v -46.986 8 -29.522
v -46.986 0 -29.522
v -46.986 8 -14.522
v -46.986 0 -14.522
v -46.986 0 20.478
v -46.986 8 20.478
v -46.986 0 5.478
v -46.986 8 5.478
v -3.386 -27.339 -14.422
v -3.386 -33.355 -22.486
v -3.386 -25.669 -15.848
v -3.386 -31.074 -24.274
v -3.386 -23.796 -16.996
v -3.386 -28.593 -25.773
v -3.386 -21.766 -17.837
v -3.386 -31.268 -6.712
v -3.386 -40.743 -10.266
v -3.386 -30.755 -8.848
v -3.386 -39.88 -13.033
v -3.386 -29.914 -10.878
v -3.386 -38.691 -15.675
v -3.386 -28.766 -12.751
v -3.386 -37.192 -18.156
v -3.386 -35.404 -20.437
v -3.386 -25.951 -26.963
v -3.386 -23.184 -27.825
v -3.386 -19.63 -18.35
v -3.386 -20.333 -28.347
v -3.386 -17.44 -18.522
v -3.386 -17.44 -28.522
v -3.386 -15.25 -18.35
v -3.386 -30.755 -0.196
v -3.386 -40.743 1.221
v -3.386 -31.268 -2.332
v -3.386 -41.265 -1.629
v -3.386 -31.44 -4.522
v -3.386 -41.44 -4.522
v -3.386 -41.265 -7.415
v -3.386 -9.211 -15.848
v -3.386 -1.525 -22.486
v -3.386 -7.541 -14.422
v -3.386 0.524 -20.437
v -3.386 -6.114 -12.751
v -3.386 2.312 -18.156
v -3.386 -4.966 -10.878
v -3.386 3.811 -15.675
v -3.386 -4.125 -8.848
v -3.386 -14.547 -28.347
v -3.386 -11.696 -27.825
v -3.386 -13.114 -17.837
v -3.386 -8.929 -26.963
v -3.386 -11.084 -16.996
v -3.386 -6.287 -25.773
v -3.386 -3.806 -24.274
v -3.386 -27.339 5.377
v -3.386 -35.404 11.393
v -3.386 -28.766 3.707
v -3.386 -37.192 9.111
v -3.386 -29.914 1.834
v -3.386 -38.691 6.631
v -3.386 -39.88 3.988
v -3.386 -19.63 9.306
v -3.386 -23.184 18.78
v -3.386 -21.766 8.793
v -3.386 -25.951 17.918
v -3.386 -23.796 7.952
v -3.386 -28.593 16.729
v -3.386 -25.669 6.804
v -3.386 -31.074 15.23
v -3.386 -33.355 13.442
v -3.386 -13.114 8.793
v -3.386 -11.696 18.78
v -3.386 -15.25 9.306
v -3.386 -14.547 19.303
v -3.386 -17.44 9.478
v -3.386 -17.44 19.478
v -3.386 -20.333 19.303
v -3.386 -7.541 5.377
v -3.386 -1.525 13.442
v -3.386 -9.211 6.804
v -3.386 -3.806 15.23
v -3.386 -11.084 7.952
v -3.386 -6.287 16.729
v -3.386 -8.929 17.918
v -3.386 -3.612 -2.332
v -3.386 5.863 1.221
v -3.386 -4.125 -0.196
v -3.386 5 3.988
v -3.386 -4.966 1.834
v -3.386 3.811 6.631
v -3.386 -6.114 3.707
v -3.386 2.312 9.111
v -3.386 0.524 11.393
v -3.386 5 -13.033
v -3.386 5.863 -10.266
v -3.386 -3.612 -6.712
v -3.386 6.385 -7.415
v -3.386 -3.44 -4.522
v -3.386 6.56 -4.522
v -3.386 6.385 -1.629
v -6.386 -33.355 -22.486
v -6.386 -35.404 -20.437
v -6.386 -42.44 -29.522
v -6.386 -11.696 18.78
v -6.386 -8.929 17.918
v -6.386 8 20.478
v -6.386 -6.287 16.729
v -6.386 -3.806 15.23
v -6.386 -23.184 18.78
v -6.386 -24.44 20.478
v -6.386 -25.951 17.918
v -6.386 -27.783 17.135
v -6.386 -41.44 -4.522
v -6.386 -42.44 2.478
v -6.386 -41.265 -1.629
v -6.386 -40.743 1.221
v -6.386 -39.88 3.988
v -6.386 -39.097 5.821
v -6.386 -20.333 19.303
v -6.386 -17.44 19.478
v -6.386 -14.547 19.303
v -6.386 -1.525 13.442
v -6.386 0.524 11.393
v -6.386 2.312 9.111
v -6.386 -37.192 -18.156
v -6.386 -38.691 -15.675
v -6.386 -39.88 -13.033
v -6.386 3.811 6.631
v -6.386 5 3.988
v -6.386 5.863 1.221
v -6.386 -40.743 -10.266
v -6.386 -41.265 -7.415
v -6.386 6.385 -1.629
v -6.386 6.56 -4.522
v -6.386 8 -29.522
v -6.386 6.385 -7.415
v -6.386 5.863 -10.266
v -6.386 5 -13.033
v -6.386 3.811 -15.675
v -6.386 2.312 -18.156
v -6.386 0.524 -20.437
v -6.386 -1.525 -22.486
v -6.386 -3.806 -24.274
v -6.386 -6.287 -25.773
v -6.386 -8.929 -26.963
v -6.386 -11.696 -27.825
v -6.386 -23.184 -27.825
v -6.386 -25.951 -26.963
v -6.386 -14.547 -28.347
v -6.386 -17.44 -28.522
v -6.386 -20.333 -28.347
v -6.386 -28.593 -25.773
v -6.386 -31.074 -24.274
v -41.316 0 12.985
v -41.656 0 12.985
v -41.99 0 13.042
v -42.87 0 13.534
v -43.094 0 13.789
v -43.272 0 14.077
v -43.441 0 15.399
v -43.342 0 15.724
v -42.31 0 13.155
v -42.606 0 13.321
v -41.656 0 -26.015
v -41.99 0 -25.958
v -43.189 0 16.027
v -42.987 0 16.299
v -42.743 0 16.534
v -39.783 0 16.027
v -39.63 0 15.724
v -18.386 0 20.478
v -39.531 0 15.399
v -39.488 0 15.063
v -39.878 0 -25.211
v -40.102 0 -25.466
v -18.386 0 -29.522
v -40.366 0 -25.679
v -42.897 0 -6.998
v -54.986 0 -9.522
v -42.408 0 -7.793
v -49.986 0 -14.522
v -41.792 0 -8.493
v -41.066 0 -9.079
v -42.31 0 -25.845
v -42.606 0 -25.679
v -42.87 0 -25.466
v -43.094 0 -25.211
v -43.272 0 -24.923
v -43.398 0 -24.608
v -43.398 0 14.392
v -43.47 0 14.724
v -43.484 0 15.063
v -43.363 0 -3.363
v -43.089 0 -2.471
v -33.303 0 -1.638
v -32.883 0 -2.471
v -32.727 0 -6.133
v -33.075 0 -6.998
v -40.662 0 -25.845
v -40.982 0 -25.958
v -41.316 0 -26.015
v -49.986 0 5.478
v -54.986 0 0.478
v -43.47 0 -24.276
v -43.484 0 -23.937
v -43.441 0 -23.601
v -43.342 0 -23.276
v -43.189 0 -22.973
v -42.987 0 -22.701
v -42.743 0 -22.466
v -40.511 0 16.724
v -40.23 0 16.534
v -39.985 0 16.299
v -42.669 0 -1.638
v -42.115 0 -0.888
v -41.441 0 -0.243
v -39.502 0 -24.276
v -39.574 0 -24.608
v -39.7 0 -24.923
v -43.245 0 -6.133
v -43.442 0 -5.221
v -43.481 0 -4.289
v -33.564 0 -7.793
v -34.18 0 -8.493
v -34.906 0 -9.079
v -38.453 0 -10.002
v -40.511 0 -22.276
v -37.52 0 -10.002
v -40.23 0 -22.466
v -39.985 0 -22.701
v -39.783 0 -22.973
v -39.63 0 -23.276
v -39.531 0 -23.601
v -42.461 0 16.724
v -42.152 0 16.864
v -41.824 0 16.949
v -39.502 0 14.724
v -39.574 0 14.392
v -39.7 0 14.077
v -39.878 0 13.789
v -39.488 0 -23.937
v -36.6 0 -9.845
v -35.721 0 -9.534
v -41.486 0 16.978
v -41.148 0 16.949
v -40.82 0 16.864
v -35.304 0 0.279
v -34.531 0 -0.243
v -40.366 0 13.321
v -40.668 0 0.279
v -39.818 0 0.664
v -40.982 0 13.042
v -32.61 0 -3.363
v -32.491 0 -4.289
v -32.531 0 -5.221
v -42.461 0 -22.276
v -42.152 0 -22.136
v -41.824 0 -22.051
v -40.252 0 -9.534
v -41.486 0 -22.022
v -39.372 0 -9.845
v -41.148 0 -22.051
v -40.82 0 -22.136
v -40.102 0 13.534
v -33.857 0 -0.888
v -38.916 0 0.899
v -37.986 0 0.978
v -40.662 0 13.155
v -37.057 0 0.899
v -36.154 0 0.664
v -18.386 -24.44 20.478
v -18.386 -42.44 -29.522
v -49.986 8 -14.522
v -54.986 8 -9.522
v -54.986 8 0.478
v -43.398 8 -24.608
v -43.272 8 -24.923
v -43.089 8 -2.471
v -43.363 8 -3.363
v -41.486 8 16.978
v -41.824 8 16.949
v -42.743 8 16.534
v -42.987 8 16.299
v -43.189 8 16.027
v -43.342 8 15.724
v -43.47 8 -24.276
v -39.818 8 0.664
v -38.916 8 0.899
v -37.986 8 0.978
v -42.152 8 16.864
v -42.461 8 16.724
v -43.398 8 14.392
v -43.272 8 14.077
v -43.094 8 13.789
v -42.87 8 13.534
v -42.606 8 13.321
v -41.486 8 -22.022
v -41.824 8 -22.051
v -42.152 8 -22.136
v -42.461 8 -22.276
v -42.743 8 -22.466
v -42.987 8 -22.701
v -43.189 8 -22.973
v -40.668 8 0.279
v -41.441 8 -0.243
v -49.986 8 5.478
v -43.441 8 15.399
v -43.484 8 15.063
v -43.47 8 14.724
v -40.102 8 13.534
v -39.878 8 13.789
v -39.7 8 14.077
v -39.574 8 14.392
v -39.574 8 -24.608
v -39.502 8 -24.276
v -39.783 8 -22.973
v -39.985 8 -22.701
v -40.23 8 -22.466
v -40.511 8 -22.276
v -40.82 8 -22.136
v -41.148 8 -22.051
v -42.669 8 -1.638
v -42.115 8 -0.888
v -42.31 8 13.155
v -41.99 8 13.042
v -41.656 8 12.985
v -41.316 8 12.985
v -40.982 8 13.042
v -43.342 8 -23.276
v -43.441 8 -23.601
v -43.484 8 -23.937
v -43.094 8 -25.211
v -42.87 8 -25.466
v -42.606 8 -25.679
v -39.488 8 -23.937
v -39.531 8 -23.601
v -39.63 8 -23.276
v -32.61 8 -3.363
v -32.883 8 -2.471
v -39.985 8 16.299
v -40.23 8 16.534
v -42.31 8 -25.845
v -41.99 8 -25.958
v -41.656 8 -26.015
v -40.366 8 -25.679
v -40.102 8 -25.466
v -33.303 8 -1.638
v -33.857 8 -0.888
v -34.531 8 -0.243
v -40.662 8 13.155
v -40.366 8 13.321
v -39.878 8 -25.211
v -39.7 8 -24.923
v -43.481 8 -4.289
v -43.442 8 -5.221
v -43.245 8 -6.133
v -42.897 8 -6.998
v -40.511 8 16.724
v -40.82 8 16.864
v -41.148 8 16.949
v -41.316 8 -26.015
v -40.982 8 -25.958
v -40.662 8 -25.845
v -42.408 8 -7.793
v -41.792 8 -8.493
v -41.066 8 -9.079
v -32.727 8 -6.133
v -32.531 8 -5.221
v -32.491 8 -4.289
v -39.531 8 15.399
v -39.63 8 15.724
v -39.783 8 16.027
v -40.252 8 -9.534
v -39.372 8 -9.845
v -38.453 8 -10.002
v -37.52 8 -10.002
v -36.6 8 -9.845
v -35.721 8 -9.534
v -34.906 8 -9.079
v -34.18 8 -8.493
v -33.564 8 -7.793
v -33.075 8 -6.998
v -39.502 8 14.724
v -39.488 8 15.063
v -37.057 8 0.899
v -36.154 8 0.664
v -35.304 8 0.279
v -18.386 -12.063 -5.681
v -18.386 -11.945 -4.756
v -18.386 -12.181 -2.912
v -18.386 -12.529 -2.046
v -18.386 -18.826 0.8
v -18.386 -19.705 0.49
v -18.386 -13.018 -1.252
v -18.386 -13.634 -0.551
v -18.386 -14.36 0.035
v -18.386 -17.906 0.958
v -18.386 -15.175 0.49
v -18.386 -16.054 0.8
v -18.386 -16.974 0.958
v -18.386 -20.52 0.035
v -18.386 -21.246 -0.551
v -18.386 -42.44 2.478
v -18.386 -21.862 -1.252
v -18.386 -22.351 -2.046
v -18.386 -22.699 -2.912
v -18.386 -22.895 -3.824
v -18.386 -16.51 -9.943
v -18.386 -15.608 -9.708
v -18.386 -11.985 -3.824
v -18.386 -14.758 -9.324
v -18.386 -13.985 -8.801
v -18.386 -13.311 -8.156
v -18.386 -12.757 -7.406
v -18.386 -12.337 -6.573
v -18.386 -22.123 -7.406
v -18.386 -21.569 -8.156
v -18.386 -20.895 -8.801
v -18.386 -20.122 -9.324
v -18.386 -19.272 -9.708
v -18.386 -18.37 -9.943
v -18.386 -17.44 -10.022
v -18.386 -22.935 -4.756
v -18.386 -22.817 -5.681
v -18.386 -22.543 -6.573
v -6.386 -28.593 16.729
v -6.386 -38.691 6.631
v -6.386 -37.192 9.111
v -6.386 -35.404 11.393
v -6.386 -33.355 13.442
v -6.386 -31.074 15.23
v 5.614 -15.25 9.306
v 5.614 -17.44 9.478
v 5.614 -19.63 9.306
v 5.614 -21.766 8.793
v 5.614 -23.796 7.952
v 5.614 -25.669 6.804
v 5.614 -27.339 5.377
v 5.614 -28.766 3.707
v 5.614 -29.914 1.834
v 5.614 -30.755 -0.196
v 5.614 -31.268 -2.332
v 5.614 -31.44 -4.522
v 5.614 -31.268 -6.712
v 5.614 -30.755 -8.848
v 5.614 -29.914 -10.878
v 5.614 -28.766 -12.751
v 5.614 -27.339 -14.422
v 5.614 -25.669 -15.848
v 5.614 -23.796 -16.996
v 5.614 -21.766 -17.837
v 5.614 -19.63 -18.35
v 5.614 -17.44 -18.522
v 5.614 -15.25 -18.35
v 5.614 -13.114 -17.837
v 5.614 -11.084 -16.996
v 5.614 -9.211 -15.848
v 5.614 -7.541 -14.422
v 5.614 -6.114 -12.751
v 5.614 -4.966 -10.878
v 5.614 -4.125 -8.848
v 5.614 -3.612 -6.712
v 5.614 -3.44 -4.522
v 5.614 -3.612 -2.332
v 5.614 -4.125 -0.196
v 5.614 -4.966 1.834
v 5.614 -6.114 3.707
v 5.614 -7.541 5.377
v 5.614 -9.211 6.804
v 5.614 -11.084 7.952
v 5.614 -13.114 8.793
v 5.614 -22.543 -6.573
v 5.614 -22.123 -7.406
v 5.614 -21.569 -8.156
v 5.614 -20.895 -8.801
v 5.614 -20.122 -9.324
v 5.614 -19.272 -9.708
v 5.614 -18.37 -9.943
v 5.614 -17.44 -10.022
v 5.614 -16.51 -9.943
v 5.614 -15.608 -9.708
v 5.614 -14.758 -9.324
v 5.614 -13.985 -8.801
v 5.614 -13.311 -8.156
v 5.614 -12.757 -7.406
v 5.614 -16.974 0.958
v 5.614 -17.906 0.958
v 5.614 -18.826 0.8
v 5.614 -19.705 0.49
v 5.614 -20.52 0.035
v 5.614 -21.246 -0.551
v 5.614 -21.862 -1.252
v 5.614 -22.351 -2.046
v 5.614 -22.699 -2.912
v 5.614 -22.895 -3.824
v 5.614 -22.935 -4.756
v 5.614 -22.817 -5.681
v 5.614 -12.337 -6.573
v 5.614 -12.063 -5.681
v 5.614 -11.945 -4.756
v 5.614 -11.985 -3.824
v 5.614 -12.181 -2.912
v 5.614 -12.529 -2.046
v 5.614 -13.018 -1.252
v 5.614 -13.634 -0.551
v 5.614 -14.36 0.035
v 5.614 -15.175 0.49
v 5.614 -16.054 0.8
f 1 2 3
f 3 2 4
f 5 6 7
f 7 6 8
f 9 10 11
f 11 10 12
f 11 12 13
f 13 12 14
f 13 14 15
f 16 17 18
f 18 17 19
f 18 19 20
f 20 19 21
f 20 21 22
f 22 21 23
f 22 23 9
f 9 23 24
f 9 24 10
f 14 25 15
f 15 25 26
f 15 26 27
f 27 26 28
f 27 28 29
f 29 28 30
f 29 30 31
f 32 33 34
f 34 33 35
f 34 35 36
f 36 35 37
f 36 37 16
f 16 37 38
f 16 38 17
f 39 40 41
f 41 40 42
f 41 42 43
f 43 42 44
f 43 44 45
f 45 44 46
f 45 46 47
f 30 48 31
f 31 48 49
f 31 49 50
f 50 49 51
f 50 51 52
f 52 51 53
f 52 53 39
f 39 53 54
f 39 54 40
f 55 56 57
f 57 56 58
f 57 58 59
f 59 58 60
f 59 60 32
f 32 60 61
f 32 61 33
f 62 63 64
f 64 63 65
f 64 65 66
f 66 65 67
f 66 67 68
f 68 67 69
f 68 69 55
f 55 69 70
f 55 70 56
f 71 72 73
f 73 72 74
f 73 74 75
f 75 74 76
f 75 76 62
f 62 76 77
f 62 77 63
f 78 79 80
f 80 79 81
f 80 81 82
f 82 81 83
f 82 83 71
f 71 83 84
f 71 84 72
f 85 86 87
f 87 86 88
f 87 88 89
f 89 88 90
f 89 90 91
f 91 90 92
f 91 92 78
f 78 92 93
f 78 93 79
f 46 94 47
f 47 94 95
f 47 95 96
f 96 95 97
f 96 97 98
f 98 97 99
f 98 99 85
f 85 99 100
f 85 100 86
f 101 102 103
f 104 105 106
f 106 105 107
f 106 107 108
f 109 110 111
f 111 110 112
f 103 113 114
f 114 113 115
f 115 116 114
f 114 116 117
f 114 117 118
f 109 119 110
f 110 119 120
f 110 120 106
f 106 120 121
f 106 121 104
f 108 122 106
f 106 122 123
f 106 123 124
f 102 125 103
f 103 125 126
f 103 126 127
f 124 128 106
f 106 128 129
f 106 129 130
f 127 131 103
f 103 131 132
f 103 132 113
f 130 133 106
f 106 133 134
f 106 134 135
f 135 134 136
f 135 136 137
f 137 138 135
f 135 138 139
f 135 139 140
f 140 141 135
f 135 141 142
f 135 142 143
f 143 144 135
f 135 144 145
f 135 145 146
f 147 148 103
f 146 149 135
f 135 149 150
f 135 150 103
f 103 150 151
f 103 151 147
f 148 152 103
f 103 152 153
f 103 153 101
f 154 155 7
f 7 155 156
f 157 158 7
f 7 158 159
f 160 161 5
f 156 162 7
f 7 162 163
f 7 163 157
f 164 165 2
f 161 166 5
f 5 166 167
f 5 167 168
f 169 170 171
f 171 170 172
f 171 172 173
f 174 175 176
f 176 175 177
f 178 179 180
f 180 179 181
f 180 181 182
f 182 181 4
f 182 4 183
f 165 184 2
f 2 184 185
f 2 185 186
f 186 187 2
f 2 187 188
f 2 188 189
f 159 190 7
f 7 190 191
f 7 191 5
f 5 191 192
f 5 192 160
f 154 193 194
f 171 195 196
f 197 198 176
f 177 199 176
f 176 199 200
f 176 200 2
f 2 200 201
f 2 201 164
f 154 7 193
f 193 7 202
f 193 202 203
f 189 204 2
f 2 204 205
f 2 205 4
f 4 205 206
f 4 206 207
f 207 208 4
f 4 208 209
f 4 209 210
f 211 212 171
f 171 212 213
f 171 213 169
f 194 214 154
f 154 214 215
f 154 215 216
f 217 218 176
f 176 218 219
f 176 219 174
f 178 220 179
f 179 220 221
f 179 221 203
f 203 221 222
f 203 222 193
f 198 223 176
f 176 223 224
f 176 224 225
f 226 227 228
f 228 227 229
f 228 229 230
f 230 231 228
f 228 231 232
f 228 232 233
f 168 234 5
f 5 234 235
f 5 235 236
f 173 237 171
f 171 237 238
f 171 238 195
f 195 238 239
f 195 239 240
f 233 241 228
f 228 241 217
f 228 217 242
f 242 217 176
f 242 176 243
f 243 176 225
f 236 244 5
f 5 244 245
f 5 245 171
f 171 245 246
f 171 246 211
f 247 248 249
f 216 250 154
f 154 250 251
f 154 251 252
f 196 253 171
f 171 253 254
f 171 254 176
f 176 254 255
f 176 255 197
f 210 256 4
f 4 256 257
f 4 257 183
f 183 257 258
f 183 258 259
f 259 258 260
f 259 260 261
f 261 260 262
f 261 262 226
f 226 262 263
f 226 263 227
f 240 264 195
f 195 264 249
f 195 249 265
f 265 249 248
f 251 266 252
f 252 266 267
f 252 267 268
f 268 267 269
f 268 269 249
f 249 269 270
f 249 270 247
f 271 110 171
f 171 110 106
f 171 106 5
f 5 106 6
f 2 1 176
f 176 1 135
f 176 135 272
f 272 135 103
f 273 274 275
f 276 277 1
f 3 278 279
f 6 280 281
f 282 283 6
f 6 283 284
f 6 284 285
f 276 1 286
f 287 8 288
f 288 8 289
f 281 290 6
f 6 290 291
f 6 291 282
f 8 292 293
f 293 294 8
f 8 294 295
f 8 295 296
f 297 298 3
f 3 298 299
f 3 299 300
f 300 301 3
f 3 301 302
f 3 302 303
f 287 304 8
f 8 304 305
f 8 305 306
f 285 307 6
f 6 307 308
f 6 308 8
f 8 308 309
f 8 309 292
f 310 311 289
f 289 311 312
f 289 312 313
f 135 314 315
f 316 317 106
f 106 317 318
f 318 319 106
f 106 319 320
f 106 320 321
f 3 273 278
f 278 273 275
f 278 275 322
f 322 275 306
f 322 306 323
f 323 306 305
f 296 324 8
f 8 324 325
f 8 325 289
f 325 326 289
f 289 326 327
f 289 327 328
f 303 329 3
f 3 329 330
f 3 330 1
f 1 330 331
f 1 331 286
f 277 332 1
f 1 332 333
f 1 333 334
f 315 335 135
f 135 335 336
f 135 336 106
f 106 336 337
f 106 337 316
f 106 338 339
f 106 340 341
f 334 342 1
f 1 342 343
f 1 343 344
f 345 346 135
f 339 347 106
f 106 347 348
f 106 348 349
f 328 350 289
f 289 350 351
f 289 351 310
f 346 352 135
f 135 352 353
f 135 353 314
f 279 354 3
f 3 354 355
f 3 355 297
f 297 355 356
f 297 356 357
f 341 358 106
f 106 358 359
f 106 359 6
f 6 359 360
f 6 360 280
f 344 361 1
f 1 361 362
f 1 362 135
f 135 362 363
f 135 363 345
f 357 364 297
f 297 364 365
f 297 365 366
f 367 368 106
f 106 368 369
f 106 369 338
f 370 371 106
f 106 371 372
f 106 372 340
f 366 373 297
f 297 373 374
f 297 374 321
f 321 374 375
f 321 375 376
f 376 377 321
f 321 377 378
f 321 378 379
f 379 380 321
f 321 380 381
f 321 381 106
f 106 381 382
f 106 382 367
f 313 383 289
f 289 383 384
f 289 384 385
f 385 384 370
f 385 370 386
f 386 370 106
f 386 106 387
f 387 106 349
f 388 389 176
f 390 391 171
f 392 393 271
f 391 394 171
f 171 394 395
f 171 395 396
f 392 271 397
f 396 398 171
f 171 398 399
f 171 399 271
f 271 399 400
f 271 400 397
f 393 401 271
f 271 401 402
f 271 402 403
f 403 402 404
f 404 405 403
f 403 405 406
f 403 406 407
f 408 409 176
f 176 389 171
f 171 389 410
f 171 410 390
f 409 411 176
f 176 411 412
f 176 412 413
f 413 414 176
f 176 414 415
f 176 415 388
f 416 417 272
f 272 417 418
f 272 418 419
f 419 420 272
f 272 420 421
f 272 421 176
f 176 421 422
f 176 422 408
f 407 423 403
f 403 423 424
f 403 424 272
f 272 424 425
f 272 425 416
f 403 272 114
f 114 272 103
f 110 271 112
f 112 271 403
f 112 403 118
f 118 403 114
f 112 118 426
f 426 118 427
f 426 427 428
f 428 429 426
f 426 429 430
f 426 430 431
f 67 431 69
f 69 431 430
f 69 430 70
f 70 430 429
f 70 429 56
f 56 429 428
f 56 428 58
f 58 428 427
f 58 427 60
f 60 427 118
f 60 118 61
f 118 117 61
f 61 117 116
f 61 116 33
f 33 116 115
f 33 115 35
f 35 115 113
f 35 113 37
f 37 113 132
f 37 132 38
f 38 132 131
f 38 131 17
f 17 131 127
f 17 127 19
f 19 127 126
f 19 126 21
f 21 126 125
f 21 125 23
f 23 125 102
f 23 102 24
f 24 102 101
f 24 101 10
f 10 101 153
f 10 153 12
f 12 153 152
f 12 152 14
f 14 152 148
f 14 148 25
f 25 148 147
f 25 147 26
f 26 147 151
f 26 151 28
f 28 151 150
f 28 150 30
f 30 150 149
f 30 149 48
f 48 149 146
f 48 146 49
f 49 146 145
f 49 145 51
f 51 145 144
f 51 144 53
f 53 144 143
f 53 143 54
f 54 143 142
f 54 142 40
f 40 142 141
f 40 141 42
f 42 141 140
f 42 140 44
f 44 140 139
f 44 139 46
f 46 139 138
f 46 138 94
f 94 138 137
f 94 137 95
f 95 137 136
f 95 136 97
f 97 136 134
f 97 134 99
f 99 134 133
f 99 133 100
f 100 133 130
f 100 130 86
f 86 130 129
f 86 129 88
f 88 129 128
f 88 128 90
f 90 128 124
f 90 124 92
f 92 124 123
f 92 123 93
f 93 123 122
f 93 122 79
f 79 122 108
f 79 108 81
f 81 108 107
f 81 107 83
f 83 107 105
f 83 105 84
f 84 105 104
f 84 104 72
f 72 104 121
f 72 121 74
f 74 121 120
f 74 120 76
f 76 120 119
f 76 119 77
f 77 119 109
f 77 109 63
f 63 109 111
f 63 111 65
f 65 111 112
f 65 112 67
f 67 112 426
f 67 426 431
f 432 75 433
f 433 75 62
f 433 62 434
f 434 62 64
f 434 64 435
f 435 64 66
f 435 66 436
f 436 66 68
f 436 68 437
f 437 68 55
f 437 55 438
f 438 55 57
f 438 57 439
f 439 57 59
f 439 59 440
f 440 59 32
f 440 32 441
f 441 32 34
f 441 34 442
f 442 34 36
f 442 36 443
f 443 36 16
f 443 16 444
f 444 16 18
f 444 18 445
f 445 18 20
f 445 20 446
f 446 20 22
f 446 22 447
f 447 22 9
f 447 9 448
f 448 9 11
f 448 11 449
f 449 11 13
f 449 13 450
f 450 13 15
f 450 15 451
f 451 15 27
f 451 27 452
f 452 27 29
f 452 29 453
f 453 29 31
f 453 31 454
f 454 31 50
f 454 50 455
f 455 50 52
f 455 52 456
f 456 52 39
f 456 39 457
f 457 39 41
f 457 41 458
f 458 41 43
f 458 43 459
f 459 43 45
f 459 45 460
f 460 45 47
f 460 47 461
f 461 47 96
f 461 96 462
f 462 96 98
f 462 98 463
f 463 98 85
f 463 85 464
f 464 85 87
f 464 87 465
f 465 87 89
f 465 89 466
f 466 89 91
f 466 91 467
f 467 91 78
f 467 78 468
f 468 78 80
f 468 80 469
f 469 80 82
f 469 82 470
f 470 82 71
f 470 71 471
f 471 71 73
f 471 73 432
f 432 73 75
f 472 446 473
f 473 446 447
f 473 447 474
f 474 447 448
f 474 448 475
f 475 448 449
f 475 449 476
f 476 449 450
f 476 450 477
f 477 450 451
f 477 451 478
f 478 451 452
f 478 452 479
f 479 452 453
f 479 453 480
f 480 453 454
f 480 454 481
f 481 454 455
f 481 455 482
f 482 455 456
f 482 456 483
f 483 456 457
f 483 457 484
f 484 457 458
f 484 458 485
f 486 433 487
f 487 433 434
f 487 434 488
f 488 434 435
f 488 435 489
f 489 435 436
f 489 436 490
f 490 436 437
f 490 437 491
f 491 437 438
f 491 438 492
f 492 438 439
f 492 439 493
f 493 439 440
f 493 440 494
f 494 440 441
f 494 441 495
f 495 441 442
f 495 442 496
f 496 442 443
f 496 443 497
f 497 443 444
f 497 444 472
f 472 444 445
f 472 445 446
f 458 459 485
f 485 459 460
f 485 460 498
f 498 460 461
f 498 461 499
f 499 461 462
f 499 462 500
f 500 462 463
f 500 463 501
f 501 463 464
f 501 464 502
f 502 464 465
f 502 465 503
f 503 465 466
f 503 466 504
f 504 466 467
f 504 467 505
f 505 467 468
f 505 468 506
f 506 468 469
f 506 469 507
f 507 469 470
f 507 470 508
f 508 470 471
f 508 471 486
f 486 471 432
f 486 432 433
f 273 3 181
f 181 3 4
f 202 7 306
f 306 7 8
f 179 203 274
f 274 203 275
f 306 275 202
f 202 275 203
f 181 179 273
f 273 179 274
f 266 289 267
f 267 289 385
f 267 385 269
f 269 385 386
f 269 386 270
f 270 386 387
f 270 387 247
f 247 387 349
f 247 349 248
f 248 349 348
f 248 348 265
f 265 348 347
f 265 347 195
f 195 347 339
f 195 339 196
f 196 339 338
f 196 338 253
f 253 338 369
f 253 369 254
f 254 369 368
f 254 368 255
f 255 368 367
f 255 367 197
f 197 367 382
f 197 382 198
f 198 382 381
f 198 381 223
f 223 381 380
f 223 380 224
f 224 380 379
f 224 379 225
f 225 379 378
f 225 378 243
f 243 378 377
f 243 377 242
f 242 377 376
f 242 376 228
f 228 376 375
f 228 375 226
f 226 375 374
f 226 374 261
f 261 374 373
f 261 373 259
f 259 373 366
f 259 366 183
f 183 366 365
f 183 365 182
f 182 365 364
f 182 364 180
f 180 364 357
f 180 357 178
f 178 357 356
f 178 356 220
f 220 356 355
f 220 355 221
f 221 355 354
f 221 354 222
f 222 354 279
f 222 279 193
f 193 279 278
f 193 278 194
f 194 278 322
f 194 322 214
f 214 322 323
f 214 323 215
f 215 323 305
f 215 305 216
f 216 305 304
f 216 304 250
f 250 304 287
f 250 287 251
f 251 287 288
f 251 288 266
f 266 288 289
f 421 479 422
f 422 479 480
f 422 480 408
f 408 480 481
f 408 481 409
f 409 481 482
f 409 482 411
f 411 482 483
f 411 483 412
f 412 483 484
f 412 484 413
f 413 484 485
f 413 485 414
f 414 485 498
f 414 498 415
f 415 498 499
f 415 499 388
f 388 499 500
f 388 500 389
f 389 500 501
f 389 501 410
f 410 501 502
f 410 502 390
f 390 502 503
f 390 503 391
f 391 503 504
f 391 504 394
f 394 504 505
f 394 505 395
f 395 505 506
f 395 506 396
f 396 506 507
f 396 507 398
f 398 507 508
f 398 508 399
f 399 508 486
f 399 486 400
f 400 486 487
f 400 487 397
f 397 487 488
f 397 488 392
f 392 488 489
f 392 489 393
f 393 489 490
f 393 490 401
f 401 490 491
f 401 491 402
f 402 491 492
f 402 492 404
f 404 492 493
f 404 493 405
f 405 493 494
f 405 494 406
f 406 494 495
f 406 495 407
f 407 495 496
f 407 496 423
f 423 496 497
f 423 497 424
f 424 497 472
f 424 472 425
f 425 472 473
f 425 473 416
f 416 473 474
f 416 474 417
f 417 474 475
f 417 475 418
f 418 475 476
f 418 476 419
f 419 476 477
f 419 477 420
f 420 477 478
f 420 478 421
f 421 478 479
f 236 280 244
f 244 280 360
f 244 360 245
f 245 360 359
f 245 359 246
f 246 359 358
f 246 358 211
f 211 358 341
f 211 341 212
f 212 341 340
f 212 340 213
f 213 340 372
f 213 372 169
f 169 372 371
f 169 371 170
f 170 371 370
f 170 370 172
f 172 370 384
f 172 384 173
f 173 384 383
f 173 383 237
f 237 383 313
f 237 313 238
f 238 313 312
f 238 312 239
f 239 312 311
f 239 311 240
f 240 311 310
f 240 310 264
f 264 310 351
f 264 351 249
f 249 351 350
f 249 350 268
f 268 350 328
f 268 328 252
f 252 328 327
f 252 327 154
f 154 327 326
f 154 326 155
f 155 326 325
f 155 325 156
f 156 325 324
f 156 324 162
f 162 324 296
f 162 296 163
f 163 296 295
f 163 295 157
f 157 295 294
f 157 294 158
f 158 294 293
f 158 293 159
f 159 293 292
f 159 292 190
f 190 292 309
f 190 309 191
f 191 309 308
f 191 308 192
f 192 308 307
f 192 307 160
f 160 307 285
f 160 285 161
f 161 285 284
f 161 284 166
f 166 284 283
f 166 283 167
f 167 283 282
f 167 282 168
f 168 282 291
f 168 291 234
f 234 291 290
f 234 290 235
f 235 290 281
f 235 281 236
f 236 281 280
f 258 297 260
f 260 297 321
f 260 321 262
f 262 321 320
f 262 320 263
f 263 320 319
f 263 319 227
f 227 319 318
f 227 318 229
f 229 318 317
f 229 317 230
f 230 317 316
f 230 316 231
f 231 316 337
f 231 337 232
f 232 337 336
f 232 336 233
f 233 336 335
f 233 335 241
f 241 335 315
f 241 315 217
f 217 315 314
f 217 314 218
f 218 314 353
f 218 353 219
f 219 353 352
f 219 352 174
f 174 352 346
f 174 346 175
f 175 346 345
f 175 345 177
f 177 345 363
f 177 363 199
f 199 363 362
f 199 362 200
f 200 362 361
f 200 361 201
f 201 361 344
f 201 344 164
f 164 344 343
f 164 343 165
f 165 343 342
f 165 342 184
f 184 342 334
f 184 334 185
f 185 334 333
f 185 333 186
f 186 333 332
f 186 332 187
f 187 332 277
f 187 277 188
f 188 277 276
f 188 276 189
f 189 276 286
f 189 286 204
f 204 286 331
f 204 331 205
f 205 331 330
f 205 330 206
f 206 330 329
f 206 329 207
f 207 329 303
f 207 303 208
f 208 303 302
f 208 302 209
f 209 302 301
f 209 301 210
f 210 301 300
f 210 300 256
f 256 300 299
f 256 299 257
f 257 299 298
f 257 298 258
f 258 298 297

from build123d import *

# Parameters (mm, degrees)
ESQUISSE1_W             = 40.6
ESQUISSE1_H             = 50
BOSS_EXTRU_1_DEPTH      = 8
ESQUISSE2_W             = 12
ESQUISSE2_H             = 50
BOSS_EXTRU_2_DEPTH      = 42.44
CHANFREIN1_SIZE         = 18
ESQUISSE3_R             = 24
BOSS_EXTRU_3_DEPTH      = 3
ESQUISSE4_R             = 14
BOSS_EXTRU_4_DEPTH      = 9
ESQUISSE5_W             = 20
ESQUISSE5_H             = 8
BOSS_EXTRU_5_DEPTH      = 8
CHANFREIN2_SIZE         = 5
CHANFREIN3_SIZE         = 5
ESQUISSE6_R             = 5.5
ENL_V_MAT_EXTRU_1_DEPTH = 81.244733381
ESQUISSE7_R             = 5.5
ENL_V_MAT_EXTRU_2_DEPTH = 80.655939168
ESQUISSE8_R             = 2
ENL_V_MAT_EXTRU_3_DEPTH = 81.244733381


with BuildPart() as part:
    # Esquisse1 → Boss.-Extru.1 (new body)
    with BuildSketch(Plane(origin=(0, 0, 0), x_dir=(1, 0, 0), z_dir=(0, 1, 0))):
        with Locations((-26.686076334, 4.522111117)):
            Rectangle(ESQUISSE1_W, ESQUISSE1_H)
    extrude(amount=BOSS_EXTRU_1_DEPTH)

    # Esquisse2 → Boss.-Extru.2 (add)
    with BuildSketch(Plane(origin=(0, 0, 0), x_dir=(-1, 0, 0), z_dir=(0, -1, 0))):
        with Locations((12.386076334, 4.522111117)):
            Rectangle(ESQUISSE2_W, ESQUISSE2_H)
    extrude(amount=BOSS_EXTRU_2_DEPTH)

    # Chanfrein1
    chanfrein1_edges = [part.edges().sort_by_distance(p)[0] for p in [
        (-12.386076334, -42.44, 20.477888883),
    ]]
    chamfer(chanfrein1_edges, length=CHANFREIN1_SIZE)

    # Esquisse3 → Boss.-Extru.3 (add)
    with BuildSketch(Plane(origin=(-6.386076334, 0, 0), x_dir=(0, 0, -1), z_dir=(1, 0, 0))):
        with Locations(Location((4.522111117, -17.44, 0), (0, 0, 205.528779366))):
            Circle(ESQUISSE3_R)
    extrude(amount=BOSS_EXTRU_3_DEPTH)

    # Esquisse4 → Boss.-Extru.4 (add)
    with BuildSketch(Plane(origin=(-3.386076334, 0, 0), x_dir=(0, 0, -1), z_dir=(1, 0, 0))):
        with Locations((4.522111117, -17.44)):
            Circle(ESQUISSE4_R)
    extrude(amount=BOSS_EXTRU_4_DEPTH)

    # Esquisse5 → Boss.-Extru.5 (add)
    with BuildSketch(Plane.ZY.offset(46.986076334)):
        with Locations((-4.522111117, 4)):
            Rectangle(ESQUISSE5_W, ESQUISSE5_H)
    extrude(amount=BOSS_EXTRU_5_DEPTH)

    # Chanfrein2
    chanfrein2_edges = [part.edges().sort_by_distance(p)[0] for p in [
        (-54.986076334, 4, 5.477888883),
    ]]
    chamfer(chanfrein2_edges, length=CHANFREIN2_SIZE)

    # Chanfrein3
    chanfrein3_edges = [part.edges().sort_by_distance(p)[0] for p in [
        (-54.986076334, 4, -14.522111117),
    ]]
    chamfer(chanfrein3_edges, length=CHANFREIN3_SIZE)

    # Esquisse6 → Enlèv. mat.-Extru.1 (cut, through all)
    with BuildSketch(Plane(origin=(0, 8, 0), x_dir=(1, 0, 0), z_dir=(0, 1, 0))):
        with Locations(Location((-37.986076334, 4.522111117, 0), (0, 0, 270))):
            Circle(ESQUISSE6_R)
    extrude(amount=-ENL_V_MAT_EXTRU_1_DEPTH, mode=Mode.SUBTRACT)

    # Esquisse7 → Enlèv. mat.-Extru.2 (cut, through all)
    with BuildSketch(Plane(origin=(5.613923666, 0, 0), x_dir=(0, 0, -1), z_dir=(1, 0, 0))):
        with Locations((4.522111117, -17.44)):
            Circle(ESQUISSE7_R)
    extrude(amount=-ENL_V_MAT_EXTRU_2_DEPTH, mode=Mode.SUBTRACT)

    # Esquisse8 → Enlèv. mat.-Extru.3 (cut, through all)
    with BuildSketch(Plane(origin=(0, 8, 0), x_dir=(1, 0, 0), z_dir=(0, 1, 0))):
        with Locations(Location((-41.486076334, -14.977888883, 0), (0, 0, 270))):
            Circle(ESQUISSE8_R)
        with Locations(Location((-41.486076334, 24.022111117, 0), (0, 0, 270))):
            Circle(ESQUISSE8_R)
    extrude(amount=-ENL_V_MAT_EXTRU_3_DEPTH, mode=Mode.SUBTRACT)


solid = part.part
